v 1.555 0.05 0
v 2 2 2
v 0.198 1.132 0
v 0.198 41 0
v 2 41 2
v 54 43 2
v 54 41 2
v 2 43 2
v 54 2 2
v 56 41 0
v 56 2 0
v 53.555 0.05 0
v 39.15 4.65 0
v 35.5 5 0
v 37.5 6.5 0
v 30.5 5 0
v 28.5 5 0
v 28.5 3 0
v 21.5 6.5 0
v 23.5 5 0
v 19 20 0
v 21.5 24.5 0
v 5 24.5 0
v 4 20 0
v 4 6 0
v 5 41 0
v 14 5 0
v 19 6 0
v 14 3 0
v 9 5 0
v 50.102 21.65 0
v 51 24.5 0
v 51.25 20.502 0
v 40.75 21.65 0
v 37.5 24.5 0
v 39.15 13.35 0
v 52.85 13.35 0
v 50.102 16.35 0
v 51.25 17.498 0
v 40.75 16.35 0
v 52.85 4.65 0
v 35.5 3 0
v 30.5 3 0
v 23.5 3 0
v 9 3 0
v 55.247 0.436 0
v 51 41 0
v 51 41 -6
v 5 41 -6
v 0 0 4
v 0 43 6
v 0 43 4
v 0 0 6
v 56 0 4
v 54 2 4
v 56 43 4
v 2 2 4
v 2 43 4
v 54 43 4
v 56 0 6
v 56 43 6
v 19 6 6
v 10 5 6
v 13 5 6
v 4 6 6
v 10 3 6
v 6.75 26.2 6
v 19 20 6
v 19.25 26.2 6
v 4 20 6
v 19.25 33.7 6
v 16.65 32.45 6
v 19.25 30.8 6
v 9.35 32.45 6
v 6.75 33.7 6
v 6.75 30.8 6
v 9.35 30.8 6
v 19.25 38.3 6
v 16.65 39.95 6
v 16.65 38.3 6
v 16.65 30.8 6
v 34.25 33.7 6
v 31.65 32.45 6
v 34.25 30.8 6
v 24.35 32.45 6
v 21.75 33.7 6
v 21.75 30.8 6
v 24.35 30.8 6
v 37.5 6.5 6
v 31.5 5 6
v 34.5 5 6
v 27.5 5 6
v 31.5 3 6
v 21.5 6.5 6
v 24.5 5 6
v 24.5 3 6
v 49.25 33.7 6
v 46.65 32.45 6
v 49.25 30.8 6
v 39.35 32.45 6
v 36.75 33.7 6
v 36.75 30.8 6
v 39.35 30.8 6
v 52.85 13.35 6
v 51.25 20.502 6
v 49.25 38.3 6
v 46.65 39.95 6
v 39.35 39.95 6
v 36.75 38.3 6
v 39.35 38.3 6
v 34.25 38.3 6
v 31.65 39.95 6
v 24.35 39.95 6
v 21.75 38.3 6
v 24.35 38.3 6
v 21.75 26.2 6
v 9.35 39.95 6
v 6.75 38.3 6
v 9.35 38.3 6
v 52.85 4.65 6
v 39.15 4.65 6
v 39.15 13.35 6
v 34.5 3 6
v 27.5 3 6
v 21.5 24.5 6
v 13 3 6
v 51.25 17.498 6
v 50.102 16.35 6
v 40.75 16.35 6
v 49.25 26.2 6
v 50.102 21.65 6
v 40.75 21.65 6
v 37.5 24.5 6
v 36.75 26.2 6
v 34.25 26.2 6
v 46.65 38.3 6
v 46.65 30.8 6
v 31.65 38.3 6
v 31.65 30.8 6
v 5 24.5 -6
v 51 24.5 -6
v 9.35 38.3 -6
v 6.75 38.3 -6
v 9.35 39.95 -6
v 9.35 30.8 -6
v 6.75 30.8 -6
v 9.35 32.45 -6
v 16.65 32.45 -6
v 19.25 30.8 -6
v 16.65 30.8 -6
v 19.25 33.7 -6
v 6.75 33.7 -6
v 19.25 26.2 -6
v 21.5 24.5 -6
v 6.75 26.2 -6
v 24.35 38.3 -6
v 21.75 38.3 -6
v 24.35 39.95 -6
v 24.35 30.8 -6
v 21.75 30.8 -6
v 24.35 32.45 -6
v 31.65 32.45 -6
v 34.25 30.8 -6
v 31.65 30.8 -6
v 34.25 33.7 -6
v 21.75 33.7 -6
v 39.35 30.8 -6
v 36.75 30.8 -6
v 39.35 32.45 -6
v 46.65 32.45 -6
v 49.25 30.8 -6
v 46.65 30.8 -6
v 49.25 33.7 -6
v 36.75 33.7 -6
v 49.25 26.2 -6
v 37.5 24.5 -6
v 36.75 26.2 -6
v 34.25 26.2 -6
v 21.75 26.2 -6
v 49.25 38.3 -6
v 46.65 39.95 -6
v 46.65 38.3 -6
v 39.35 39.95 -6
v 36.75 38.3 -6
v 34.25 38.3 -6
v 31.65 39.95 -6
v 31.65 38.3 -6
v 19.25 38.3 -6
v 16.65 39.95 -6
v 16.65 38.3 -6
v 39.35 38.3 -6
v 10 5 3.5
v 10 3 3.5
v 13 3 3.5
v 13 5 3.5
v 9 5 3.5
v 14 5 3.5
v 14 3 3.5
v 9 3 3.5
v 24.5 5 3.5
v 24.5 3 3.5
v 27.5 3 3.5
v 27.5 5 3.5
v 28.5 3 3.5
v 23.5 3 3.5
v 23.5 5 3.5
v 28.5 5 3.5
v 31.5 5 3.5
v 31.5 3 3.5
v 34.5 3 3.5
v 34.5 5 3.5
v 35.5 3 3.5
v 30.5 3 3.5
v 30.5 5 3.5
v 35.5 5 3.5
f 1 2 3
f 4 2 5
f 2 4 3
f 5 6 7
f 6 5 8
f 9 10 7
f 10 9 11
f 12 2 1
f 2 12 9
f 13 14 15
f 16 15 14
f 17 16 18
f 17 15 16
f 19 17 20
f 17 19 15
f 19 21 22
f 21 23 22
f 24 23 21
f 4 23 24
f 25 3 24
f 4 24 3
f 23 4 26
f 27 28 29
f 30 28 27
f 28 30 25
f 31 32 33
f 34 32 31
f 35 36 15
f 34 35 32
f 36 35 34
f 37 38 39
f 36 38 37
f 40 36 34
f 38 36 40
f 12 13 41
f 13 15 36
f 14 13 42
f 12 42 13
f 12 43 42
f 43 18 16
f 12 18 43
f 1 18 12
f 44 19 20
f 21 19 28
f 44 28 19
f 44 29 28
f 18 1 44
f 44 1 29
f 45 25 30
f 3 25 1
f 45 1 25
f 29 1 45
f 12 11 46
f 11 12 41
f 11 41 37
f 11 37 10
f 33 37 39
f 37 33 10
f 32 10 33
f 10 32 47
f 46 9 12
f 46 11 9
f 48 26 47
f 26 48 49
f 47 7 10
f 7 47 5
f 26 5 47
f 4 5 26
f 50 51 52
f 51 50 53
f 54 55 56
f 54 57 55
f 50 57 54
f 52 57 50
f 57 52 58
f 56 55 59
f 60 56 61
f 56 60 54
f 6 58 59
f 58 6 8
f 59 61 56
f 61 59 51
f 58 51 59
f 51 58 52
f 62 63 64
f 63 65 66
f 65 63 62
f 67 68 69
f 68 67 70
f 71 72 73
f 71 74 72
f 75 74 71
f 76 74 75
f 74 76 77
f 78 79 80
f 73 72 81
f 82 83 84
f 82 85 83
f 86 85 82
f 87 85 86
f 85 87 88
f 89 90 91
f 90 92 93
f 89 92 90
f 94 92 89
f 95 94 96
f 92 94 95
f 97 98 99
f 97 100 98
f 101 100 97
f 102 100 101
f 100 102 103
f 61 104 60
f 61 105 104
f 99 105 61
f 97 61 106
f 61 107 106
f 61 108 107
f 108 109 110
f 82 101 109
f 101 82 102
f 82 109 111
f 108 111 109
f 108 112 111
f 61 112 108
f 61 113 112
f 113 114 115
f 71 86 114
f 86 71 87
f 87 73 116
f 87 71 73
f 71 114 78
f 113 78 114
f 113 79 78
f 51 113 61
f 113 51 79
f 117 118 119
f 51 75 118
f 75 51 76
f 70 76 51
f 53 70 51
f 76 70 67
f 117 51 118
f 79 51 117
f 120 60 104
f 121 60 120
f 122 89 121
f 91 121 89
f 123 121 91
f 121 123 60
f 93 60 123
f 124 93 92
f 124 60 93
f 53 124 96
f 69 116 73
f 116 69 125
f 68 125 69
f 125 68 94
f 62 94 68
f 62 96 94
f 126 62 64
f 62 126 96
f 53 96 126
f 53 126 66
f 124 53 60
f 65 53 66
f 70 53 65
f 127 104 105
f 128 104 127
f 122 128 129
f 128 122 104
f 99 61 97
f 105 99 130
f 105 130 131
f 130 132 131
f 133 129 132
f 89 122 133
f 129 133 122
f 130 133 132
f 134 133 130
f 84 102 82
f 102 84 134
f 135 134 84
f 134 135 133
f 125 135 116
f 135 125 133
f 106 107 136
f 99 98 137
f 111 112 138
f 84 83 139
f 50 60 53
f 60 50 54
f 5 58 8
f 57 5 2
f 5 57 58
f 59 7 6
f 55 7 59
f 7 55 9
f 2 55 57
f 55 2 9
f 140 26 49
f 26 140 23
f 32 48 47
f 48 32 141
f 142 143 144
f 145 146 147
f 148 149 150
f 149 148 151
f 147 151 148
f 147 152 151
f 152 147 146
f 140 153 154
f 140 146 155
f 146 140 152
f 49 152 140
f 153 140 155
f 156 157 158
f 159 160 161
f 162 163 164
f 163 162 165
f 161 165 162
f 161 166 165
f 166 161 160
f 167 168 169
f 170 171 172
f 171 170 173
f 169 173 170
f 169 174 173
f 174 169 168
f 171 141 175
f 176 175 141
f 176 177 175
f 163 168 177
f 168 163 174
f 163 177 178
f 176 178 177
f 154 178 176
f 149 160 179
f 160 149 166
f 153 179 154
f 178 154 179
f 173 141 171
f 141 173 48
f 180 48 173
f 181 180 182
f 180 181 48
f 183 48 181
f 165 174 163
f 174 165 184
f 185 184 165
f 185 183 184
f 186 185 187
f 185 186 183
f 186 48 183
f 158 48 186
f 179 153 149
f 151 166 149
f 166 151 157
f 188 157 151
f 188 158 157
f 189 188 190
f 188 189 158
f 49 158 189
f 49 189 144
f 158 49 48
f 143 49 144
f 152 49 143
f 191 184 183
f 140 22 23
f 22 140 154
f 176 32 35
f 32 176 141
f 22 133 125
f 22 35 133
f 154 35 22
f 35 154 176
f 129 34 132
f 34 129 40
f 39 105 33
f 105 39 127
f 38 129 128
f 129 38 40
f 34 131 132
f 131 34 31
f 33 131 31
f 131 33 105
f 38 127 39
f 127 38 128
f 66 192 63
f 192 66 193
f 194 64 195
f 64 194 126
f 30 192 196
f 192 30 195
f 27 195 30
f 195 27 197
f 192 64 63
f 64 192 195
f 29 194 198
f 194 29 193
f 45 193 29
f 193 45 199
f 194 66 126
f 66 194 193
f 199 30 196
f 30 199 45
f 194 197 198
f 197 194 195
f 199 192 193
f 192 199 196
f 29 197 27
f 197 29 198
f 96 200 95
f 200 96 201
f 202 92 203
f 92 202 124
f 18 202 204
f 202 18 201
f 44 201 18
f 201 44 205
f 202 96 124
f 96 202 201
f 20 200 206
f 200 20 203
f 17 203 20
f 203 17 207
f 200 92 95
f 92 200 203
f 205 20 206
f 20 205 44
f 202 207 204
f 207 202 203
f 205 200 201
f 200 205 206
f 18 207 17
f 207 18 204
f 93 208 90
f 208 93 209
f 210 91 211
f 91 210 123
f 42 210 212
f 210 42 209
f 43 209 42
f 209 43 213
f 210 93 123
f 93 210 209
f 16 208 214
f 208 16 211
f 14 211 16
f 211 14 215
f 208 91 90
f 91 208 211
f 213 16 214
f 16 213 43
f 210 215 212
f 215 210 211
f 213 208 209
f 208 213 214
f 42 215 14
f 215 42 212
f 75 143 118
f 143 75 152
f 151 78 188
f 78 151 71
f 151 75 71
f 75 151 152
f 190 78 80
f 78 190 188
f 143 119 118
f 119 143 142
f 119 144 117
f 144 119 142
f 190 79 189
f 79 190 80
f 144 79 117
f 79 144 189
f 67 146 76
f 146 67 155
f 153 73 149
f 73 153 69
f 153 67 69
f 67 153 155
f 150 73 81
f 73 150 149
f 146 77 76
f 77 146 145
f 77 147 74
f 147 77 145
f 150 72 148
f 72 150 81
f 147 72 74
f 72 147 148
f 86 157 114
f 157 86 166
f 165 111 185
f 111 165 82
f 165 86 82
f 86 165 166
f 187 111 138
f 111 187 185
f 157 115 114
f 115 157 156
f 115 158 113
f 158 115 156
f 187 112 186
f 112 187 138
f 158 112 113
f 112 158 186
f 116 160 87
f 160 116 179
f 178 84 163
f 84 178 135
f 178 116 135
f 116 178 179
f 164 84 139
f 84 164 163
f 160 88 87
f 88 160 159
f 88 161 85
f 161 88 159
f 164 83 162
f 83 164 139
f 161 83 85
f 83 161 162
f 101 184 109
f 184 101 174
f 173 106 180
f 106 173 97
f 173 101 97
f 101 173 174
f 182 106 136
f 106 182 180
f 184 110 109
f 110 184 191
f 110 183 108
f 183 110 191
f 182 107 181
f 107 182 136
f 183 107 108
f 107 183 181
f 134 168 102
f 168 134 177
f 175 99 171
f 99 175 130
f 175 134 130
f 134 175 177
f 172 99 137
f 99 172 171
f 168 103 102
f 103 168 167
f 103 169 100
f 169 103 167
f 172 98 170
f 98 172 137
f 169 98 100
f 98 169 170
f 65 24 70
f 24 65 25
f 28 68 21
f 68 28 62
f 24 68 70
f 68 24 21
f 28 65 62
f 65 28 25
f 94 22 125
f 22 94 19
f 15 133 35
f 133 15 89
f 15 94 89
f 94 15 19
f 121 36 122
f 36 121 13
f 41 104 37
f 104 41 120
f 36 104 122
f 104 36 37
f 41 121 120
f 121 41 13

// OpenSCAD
L=110;
LL=120;
W=49.5;
WW=60;
HH=45;
T=2;

XW=42;
XL=79;

difference() {
    union() {
        plate();
        plate2();
    }
    ethernet();
    usb();
    hdmi();
    power();
    //misc();
    switches();
    
    /*
    difference() {
        translate([(WW-2*T)/2+1,33,0])
        fanvent();
        
        translate([0,0,0])
        cube([20,HH,10*T]);
    }
    */
    
    translate([13,36-.0001])
    milligrid4();
    translate([13,28.5-.0001])
    milligrid4();
    translate([(WW-2*T)/2,36-.0001])
    milligrid4();
    
    translate([(WW-2*T)/2,28.5-.0001])
    milligrid4();
    translate([WW-2*T-13,36,-.0001])
    milligrid4();
    
    translate([WW-2*T-13,28.5-.0001])
    milligrid4();
}

module plate2() {
    translate([2.5*T,HH-20.5,-3*T])
    cube([WW-7*T,16.5,3*T]);
}

module milligrid4() {
    /*
    translate([-8,-10/2+1,2])
    cube([16,10,5]);
    
    cube([15.0+.2,4.15+.2,5], center=true);
    cube([10.7+.2,5.15+.2,5], center=true);
    translate([0,1.6/2,0])
    cube([4.0+.2,5.15+1.6+.2,5], center=true);
    */
    
    cube([12.5,4.6,15], center=true);
    
    translate([0,4.3/2+1.8/2,0])
    cube([7.3,1.8,15], center=true);
    
    //cube([13.0,7.5,8],center=true);
}

module jstsm4() {
    translate([-8,-10/2+1,2])
    cube([16,10,5]);
    
    cube([15.0+.2,4.15+.2,5], center=true);
    cube([10.7+.2,5.15+.2,5], center=true);
    translate([0,1.6/2,0])
    cube([4.0+.2,5.15+1.6+.2,5], center=true);
    
    //cube([13.0,7.5,8],center=true);
}

module plate() {
translate([0,0,3*T])
scale([1,1,-1])
union() {
cube([WW-2*T,HH-T,T]);
translate([T,T,T])
cube([WW-4*T,HH-2*T,T]);


difference() {
translate([T,T,2*T])
minkowski() {
cube([WW-4*T,HH-3*T,0.0001]);
cylinder(d1=0,d2=2*T,h=T);
}

translate([0,HH-2*T,2*T])
  cube([WW,2*T,2*T]);
}
}
}

module ethernet() {
    translate([4,6,-T])
    cube([15,14,10*T]);
}

module usb() {
    translate([29.5,15.5])
    cube([16,18,10*T],center=true);
}

module hdmi() {
    translate([46,9])
    cube([13.7,8.7,10*T],center=true);
}

module power() {
    translate([46,19])
    difference() {
        cube([10.5,5.3,10*T],center=true);
        translate([8,2.5,0])
        rotate([0,0,-45])
        cube([10.5,5.3,10*T],center=true);
        translate([8,-2.5,0])
        rotate([0,0,45])
        cube([10.5,5.3,10*T],center=true);
    }
}

module misc() {
    translate([29.5,30.5])
    cube([16,6,10*T],center=true);
}

module switches() {
    translate([11.5,4]) {
        cube([3,2,10*T], center=true);
        translate([0,0,T-0.5])
        cube([5,2,2*T], center=true);
    }
    
    translate([26,4]) {
        cube([3,2,10*T], center=true);
        translate([0,0,T-0.5])
        cube([5,2,2*T], center=true);
    }
    
    translate([33,4]) {
        cube([3,2,10*T], center=true);
        translate([0,0,T-0.5])
        cube([5,2,2*T], center=true);
    }
}


module fanvent() {
    for (i = [-22:5.5:22]) {
            translate([i,0,0])
            cube([2.5,12,30], center=true);
    }
}
